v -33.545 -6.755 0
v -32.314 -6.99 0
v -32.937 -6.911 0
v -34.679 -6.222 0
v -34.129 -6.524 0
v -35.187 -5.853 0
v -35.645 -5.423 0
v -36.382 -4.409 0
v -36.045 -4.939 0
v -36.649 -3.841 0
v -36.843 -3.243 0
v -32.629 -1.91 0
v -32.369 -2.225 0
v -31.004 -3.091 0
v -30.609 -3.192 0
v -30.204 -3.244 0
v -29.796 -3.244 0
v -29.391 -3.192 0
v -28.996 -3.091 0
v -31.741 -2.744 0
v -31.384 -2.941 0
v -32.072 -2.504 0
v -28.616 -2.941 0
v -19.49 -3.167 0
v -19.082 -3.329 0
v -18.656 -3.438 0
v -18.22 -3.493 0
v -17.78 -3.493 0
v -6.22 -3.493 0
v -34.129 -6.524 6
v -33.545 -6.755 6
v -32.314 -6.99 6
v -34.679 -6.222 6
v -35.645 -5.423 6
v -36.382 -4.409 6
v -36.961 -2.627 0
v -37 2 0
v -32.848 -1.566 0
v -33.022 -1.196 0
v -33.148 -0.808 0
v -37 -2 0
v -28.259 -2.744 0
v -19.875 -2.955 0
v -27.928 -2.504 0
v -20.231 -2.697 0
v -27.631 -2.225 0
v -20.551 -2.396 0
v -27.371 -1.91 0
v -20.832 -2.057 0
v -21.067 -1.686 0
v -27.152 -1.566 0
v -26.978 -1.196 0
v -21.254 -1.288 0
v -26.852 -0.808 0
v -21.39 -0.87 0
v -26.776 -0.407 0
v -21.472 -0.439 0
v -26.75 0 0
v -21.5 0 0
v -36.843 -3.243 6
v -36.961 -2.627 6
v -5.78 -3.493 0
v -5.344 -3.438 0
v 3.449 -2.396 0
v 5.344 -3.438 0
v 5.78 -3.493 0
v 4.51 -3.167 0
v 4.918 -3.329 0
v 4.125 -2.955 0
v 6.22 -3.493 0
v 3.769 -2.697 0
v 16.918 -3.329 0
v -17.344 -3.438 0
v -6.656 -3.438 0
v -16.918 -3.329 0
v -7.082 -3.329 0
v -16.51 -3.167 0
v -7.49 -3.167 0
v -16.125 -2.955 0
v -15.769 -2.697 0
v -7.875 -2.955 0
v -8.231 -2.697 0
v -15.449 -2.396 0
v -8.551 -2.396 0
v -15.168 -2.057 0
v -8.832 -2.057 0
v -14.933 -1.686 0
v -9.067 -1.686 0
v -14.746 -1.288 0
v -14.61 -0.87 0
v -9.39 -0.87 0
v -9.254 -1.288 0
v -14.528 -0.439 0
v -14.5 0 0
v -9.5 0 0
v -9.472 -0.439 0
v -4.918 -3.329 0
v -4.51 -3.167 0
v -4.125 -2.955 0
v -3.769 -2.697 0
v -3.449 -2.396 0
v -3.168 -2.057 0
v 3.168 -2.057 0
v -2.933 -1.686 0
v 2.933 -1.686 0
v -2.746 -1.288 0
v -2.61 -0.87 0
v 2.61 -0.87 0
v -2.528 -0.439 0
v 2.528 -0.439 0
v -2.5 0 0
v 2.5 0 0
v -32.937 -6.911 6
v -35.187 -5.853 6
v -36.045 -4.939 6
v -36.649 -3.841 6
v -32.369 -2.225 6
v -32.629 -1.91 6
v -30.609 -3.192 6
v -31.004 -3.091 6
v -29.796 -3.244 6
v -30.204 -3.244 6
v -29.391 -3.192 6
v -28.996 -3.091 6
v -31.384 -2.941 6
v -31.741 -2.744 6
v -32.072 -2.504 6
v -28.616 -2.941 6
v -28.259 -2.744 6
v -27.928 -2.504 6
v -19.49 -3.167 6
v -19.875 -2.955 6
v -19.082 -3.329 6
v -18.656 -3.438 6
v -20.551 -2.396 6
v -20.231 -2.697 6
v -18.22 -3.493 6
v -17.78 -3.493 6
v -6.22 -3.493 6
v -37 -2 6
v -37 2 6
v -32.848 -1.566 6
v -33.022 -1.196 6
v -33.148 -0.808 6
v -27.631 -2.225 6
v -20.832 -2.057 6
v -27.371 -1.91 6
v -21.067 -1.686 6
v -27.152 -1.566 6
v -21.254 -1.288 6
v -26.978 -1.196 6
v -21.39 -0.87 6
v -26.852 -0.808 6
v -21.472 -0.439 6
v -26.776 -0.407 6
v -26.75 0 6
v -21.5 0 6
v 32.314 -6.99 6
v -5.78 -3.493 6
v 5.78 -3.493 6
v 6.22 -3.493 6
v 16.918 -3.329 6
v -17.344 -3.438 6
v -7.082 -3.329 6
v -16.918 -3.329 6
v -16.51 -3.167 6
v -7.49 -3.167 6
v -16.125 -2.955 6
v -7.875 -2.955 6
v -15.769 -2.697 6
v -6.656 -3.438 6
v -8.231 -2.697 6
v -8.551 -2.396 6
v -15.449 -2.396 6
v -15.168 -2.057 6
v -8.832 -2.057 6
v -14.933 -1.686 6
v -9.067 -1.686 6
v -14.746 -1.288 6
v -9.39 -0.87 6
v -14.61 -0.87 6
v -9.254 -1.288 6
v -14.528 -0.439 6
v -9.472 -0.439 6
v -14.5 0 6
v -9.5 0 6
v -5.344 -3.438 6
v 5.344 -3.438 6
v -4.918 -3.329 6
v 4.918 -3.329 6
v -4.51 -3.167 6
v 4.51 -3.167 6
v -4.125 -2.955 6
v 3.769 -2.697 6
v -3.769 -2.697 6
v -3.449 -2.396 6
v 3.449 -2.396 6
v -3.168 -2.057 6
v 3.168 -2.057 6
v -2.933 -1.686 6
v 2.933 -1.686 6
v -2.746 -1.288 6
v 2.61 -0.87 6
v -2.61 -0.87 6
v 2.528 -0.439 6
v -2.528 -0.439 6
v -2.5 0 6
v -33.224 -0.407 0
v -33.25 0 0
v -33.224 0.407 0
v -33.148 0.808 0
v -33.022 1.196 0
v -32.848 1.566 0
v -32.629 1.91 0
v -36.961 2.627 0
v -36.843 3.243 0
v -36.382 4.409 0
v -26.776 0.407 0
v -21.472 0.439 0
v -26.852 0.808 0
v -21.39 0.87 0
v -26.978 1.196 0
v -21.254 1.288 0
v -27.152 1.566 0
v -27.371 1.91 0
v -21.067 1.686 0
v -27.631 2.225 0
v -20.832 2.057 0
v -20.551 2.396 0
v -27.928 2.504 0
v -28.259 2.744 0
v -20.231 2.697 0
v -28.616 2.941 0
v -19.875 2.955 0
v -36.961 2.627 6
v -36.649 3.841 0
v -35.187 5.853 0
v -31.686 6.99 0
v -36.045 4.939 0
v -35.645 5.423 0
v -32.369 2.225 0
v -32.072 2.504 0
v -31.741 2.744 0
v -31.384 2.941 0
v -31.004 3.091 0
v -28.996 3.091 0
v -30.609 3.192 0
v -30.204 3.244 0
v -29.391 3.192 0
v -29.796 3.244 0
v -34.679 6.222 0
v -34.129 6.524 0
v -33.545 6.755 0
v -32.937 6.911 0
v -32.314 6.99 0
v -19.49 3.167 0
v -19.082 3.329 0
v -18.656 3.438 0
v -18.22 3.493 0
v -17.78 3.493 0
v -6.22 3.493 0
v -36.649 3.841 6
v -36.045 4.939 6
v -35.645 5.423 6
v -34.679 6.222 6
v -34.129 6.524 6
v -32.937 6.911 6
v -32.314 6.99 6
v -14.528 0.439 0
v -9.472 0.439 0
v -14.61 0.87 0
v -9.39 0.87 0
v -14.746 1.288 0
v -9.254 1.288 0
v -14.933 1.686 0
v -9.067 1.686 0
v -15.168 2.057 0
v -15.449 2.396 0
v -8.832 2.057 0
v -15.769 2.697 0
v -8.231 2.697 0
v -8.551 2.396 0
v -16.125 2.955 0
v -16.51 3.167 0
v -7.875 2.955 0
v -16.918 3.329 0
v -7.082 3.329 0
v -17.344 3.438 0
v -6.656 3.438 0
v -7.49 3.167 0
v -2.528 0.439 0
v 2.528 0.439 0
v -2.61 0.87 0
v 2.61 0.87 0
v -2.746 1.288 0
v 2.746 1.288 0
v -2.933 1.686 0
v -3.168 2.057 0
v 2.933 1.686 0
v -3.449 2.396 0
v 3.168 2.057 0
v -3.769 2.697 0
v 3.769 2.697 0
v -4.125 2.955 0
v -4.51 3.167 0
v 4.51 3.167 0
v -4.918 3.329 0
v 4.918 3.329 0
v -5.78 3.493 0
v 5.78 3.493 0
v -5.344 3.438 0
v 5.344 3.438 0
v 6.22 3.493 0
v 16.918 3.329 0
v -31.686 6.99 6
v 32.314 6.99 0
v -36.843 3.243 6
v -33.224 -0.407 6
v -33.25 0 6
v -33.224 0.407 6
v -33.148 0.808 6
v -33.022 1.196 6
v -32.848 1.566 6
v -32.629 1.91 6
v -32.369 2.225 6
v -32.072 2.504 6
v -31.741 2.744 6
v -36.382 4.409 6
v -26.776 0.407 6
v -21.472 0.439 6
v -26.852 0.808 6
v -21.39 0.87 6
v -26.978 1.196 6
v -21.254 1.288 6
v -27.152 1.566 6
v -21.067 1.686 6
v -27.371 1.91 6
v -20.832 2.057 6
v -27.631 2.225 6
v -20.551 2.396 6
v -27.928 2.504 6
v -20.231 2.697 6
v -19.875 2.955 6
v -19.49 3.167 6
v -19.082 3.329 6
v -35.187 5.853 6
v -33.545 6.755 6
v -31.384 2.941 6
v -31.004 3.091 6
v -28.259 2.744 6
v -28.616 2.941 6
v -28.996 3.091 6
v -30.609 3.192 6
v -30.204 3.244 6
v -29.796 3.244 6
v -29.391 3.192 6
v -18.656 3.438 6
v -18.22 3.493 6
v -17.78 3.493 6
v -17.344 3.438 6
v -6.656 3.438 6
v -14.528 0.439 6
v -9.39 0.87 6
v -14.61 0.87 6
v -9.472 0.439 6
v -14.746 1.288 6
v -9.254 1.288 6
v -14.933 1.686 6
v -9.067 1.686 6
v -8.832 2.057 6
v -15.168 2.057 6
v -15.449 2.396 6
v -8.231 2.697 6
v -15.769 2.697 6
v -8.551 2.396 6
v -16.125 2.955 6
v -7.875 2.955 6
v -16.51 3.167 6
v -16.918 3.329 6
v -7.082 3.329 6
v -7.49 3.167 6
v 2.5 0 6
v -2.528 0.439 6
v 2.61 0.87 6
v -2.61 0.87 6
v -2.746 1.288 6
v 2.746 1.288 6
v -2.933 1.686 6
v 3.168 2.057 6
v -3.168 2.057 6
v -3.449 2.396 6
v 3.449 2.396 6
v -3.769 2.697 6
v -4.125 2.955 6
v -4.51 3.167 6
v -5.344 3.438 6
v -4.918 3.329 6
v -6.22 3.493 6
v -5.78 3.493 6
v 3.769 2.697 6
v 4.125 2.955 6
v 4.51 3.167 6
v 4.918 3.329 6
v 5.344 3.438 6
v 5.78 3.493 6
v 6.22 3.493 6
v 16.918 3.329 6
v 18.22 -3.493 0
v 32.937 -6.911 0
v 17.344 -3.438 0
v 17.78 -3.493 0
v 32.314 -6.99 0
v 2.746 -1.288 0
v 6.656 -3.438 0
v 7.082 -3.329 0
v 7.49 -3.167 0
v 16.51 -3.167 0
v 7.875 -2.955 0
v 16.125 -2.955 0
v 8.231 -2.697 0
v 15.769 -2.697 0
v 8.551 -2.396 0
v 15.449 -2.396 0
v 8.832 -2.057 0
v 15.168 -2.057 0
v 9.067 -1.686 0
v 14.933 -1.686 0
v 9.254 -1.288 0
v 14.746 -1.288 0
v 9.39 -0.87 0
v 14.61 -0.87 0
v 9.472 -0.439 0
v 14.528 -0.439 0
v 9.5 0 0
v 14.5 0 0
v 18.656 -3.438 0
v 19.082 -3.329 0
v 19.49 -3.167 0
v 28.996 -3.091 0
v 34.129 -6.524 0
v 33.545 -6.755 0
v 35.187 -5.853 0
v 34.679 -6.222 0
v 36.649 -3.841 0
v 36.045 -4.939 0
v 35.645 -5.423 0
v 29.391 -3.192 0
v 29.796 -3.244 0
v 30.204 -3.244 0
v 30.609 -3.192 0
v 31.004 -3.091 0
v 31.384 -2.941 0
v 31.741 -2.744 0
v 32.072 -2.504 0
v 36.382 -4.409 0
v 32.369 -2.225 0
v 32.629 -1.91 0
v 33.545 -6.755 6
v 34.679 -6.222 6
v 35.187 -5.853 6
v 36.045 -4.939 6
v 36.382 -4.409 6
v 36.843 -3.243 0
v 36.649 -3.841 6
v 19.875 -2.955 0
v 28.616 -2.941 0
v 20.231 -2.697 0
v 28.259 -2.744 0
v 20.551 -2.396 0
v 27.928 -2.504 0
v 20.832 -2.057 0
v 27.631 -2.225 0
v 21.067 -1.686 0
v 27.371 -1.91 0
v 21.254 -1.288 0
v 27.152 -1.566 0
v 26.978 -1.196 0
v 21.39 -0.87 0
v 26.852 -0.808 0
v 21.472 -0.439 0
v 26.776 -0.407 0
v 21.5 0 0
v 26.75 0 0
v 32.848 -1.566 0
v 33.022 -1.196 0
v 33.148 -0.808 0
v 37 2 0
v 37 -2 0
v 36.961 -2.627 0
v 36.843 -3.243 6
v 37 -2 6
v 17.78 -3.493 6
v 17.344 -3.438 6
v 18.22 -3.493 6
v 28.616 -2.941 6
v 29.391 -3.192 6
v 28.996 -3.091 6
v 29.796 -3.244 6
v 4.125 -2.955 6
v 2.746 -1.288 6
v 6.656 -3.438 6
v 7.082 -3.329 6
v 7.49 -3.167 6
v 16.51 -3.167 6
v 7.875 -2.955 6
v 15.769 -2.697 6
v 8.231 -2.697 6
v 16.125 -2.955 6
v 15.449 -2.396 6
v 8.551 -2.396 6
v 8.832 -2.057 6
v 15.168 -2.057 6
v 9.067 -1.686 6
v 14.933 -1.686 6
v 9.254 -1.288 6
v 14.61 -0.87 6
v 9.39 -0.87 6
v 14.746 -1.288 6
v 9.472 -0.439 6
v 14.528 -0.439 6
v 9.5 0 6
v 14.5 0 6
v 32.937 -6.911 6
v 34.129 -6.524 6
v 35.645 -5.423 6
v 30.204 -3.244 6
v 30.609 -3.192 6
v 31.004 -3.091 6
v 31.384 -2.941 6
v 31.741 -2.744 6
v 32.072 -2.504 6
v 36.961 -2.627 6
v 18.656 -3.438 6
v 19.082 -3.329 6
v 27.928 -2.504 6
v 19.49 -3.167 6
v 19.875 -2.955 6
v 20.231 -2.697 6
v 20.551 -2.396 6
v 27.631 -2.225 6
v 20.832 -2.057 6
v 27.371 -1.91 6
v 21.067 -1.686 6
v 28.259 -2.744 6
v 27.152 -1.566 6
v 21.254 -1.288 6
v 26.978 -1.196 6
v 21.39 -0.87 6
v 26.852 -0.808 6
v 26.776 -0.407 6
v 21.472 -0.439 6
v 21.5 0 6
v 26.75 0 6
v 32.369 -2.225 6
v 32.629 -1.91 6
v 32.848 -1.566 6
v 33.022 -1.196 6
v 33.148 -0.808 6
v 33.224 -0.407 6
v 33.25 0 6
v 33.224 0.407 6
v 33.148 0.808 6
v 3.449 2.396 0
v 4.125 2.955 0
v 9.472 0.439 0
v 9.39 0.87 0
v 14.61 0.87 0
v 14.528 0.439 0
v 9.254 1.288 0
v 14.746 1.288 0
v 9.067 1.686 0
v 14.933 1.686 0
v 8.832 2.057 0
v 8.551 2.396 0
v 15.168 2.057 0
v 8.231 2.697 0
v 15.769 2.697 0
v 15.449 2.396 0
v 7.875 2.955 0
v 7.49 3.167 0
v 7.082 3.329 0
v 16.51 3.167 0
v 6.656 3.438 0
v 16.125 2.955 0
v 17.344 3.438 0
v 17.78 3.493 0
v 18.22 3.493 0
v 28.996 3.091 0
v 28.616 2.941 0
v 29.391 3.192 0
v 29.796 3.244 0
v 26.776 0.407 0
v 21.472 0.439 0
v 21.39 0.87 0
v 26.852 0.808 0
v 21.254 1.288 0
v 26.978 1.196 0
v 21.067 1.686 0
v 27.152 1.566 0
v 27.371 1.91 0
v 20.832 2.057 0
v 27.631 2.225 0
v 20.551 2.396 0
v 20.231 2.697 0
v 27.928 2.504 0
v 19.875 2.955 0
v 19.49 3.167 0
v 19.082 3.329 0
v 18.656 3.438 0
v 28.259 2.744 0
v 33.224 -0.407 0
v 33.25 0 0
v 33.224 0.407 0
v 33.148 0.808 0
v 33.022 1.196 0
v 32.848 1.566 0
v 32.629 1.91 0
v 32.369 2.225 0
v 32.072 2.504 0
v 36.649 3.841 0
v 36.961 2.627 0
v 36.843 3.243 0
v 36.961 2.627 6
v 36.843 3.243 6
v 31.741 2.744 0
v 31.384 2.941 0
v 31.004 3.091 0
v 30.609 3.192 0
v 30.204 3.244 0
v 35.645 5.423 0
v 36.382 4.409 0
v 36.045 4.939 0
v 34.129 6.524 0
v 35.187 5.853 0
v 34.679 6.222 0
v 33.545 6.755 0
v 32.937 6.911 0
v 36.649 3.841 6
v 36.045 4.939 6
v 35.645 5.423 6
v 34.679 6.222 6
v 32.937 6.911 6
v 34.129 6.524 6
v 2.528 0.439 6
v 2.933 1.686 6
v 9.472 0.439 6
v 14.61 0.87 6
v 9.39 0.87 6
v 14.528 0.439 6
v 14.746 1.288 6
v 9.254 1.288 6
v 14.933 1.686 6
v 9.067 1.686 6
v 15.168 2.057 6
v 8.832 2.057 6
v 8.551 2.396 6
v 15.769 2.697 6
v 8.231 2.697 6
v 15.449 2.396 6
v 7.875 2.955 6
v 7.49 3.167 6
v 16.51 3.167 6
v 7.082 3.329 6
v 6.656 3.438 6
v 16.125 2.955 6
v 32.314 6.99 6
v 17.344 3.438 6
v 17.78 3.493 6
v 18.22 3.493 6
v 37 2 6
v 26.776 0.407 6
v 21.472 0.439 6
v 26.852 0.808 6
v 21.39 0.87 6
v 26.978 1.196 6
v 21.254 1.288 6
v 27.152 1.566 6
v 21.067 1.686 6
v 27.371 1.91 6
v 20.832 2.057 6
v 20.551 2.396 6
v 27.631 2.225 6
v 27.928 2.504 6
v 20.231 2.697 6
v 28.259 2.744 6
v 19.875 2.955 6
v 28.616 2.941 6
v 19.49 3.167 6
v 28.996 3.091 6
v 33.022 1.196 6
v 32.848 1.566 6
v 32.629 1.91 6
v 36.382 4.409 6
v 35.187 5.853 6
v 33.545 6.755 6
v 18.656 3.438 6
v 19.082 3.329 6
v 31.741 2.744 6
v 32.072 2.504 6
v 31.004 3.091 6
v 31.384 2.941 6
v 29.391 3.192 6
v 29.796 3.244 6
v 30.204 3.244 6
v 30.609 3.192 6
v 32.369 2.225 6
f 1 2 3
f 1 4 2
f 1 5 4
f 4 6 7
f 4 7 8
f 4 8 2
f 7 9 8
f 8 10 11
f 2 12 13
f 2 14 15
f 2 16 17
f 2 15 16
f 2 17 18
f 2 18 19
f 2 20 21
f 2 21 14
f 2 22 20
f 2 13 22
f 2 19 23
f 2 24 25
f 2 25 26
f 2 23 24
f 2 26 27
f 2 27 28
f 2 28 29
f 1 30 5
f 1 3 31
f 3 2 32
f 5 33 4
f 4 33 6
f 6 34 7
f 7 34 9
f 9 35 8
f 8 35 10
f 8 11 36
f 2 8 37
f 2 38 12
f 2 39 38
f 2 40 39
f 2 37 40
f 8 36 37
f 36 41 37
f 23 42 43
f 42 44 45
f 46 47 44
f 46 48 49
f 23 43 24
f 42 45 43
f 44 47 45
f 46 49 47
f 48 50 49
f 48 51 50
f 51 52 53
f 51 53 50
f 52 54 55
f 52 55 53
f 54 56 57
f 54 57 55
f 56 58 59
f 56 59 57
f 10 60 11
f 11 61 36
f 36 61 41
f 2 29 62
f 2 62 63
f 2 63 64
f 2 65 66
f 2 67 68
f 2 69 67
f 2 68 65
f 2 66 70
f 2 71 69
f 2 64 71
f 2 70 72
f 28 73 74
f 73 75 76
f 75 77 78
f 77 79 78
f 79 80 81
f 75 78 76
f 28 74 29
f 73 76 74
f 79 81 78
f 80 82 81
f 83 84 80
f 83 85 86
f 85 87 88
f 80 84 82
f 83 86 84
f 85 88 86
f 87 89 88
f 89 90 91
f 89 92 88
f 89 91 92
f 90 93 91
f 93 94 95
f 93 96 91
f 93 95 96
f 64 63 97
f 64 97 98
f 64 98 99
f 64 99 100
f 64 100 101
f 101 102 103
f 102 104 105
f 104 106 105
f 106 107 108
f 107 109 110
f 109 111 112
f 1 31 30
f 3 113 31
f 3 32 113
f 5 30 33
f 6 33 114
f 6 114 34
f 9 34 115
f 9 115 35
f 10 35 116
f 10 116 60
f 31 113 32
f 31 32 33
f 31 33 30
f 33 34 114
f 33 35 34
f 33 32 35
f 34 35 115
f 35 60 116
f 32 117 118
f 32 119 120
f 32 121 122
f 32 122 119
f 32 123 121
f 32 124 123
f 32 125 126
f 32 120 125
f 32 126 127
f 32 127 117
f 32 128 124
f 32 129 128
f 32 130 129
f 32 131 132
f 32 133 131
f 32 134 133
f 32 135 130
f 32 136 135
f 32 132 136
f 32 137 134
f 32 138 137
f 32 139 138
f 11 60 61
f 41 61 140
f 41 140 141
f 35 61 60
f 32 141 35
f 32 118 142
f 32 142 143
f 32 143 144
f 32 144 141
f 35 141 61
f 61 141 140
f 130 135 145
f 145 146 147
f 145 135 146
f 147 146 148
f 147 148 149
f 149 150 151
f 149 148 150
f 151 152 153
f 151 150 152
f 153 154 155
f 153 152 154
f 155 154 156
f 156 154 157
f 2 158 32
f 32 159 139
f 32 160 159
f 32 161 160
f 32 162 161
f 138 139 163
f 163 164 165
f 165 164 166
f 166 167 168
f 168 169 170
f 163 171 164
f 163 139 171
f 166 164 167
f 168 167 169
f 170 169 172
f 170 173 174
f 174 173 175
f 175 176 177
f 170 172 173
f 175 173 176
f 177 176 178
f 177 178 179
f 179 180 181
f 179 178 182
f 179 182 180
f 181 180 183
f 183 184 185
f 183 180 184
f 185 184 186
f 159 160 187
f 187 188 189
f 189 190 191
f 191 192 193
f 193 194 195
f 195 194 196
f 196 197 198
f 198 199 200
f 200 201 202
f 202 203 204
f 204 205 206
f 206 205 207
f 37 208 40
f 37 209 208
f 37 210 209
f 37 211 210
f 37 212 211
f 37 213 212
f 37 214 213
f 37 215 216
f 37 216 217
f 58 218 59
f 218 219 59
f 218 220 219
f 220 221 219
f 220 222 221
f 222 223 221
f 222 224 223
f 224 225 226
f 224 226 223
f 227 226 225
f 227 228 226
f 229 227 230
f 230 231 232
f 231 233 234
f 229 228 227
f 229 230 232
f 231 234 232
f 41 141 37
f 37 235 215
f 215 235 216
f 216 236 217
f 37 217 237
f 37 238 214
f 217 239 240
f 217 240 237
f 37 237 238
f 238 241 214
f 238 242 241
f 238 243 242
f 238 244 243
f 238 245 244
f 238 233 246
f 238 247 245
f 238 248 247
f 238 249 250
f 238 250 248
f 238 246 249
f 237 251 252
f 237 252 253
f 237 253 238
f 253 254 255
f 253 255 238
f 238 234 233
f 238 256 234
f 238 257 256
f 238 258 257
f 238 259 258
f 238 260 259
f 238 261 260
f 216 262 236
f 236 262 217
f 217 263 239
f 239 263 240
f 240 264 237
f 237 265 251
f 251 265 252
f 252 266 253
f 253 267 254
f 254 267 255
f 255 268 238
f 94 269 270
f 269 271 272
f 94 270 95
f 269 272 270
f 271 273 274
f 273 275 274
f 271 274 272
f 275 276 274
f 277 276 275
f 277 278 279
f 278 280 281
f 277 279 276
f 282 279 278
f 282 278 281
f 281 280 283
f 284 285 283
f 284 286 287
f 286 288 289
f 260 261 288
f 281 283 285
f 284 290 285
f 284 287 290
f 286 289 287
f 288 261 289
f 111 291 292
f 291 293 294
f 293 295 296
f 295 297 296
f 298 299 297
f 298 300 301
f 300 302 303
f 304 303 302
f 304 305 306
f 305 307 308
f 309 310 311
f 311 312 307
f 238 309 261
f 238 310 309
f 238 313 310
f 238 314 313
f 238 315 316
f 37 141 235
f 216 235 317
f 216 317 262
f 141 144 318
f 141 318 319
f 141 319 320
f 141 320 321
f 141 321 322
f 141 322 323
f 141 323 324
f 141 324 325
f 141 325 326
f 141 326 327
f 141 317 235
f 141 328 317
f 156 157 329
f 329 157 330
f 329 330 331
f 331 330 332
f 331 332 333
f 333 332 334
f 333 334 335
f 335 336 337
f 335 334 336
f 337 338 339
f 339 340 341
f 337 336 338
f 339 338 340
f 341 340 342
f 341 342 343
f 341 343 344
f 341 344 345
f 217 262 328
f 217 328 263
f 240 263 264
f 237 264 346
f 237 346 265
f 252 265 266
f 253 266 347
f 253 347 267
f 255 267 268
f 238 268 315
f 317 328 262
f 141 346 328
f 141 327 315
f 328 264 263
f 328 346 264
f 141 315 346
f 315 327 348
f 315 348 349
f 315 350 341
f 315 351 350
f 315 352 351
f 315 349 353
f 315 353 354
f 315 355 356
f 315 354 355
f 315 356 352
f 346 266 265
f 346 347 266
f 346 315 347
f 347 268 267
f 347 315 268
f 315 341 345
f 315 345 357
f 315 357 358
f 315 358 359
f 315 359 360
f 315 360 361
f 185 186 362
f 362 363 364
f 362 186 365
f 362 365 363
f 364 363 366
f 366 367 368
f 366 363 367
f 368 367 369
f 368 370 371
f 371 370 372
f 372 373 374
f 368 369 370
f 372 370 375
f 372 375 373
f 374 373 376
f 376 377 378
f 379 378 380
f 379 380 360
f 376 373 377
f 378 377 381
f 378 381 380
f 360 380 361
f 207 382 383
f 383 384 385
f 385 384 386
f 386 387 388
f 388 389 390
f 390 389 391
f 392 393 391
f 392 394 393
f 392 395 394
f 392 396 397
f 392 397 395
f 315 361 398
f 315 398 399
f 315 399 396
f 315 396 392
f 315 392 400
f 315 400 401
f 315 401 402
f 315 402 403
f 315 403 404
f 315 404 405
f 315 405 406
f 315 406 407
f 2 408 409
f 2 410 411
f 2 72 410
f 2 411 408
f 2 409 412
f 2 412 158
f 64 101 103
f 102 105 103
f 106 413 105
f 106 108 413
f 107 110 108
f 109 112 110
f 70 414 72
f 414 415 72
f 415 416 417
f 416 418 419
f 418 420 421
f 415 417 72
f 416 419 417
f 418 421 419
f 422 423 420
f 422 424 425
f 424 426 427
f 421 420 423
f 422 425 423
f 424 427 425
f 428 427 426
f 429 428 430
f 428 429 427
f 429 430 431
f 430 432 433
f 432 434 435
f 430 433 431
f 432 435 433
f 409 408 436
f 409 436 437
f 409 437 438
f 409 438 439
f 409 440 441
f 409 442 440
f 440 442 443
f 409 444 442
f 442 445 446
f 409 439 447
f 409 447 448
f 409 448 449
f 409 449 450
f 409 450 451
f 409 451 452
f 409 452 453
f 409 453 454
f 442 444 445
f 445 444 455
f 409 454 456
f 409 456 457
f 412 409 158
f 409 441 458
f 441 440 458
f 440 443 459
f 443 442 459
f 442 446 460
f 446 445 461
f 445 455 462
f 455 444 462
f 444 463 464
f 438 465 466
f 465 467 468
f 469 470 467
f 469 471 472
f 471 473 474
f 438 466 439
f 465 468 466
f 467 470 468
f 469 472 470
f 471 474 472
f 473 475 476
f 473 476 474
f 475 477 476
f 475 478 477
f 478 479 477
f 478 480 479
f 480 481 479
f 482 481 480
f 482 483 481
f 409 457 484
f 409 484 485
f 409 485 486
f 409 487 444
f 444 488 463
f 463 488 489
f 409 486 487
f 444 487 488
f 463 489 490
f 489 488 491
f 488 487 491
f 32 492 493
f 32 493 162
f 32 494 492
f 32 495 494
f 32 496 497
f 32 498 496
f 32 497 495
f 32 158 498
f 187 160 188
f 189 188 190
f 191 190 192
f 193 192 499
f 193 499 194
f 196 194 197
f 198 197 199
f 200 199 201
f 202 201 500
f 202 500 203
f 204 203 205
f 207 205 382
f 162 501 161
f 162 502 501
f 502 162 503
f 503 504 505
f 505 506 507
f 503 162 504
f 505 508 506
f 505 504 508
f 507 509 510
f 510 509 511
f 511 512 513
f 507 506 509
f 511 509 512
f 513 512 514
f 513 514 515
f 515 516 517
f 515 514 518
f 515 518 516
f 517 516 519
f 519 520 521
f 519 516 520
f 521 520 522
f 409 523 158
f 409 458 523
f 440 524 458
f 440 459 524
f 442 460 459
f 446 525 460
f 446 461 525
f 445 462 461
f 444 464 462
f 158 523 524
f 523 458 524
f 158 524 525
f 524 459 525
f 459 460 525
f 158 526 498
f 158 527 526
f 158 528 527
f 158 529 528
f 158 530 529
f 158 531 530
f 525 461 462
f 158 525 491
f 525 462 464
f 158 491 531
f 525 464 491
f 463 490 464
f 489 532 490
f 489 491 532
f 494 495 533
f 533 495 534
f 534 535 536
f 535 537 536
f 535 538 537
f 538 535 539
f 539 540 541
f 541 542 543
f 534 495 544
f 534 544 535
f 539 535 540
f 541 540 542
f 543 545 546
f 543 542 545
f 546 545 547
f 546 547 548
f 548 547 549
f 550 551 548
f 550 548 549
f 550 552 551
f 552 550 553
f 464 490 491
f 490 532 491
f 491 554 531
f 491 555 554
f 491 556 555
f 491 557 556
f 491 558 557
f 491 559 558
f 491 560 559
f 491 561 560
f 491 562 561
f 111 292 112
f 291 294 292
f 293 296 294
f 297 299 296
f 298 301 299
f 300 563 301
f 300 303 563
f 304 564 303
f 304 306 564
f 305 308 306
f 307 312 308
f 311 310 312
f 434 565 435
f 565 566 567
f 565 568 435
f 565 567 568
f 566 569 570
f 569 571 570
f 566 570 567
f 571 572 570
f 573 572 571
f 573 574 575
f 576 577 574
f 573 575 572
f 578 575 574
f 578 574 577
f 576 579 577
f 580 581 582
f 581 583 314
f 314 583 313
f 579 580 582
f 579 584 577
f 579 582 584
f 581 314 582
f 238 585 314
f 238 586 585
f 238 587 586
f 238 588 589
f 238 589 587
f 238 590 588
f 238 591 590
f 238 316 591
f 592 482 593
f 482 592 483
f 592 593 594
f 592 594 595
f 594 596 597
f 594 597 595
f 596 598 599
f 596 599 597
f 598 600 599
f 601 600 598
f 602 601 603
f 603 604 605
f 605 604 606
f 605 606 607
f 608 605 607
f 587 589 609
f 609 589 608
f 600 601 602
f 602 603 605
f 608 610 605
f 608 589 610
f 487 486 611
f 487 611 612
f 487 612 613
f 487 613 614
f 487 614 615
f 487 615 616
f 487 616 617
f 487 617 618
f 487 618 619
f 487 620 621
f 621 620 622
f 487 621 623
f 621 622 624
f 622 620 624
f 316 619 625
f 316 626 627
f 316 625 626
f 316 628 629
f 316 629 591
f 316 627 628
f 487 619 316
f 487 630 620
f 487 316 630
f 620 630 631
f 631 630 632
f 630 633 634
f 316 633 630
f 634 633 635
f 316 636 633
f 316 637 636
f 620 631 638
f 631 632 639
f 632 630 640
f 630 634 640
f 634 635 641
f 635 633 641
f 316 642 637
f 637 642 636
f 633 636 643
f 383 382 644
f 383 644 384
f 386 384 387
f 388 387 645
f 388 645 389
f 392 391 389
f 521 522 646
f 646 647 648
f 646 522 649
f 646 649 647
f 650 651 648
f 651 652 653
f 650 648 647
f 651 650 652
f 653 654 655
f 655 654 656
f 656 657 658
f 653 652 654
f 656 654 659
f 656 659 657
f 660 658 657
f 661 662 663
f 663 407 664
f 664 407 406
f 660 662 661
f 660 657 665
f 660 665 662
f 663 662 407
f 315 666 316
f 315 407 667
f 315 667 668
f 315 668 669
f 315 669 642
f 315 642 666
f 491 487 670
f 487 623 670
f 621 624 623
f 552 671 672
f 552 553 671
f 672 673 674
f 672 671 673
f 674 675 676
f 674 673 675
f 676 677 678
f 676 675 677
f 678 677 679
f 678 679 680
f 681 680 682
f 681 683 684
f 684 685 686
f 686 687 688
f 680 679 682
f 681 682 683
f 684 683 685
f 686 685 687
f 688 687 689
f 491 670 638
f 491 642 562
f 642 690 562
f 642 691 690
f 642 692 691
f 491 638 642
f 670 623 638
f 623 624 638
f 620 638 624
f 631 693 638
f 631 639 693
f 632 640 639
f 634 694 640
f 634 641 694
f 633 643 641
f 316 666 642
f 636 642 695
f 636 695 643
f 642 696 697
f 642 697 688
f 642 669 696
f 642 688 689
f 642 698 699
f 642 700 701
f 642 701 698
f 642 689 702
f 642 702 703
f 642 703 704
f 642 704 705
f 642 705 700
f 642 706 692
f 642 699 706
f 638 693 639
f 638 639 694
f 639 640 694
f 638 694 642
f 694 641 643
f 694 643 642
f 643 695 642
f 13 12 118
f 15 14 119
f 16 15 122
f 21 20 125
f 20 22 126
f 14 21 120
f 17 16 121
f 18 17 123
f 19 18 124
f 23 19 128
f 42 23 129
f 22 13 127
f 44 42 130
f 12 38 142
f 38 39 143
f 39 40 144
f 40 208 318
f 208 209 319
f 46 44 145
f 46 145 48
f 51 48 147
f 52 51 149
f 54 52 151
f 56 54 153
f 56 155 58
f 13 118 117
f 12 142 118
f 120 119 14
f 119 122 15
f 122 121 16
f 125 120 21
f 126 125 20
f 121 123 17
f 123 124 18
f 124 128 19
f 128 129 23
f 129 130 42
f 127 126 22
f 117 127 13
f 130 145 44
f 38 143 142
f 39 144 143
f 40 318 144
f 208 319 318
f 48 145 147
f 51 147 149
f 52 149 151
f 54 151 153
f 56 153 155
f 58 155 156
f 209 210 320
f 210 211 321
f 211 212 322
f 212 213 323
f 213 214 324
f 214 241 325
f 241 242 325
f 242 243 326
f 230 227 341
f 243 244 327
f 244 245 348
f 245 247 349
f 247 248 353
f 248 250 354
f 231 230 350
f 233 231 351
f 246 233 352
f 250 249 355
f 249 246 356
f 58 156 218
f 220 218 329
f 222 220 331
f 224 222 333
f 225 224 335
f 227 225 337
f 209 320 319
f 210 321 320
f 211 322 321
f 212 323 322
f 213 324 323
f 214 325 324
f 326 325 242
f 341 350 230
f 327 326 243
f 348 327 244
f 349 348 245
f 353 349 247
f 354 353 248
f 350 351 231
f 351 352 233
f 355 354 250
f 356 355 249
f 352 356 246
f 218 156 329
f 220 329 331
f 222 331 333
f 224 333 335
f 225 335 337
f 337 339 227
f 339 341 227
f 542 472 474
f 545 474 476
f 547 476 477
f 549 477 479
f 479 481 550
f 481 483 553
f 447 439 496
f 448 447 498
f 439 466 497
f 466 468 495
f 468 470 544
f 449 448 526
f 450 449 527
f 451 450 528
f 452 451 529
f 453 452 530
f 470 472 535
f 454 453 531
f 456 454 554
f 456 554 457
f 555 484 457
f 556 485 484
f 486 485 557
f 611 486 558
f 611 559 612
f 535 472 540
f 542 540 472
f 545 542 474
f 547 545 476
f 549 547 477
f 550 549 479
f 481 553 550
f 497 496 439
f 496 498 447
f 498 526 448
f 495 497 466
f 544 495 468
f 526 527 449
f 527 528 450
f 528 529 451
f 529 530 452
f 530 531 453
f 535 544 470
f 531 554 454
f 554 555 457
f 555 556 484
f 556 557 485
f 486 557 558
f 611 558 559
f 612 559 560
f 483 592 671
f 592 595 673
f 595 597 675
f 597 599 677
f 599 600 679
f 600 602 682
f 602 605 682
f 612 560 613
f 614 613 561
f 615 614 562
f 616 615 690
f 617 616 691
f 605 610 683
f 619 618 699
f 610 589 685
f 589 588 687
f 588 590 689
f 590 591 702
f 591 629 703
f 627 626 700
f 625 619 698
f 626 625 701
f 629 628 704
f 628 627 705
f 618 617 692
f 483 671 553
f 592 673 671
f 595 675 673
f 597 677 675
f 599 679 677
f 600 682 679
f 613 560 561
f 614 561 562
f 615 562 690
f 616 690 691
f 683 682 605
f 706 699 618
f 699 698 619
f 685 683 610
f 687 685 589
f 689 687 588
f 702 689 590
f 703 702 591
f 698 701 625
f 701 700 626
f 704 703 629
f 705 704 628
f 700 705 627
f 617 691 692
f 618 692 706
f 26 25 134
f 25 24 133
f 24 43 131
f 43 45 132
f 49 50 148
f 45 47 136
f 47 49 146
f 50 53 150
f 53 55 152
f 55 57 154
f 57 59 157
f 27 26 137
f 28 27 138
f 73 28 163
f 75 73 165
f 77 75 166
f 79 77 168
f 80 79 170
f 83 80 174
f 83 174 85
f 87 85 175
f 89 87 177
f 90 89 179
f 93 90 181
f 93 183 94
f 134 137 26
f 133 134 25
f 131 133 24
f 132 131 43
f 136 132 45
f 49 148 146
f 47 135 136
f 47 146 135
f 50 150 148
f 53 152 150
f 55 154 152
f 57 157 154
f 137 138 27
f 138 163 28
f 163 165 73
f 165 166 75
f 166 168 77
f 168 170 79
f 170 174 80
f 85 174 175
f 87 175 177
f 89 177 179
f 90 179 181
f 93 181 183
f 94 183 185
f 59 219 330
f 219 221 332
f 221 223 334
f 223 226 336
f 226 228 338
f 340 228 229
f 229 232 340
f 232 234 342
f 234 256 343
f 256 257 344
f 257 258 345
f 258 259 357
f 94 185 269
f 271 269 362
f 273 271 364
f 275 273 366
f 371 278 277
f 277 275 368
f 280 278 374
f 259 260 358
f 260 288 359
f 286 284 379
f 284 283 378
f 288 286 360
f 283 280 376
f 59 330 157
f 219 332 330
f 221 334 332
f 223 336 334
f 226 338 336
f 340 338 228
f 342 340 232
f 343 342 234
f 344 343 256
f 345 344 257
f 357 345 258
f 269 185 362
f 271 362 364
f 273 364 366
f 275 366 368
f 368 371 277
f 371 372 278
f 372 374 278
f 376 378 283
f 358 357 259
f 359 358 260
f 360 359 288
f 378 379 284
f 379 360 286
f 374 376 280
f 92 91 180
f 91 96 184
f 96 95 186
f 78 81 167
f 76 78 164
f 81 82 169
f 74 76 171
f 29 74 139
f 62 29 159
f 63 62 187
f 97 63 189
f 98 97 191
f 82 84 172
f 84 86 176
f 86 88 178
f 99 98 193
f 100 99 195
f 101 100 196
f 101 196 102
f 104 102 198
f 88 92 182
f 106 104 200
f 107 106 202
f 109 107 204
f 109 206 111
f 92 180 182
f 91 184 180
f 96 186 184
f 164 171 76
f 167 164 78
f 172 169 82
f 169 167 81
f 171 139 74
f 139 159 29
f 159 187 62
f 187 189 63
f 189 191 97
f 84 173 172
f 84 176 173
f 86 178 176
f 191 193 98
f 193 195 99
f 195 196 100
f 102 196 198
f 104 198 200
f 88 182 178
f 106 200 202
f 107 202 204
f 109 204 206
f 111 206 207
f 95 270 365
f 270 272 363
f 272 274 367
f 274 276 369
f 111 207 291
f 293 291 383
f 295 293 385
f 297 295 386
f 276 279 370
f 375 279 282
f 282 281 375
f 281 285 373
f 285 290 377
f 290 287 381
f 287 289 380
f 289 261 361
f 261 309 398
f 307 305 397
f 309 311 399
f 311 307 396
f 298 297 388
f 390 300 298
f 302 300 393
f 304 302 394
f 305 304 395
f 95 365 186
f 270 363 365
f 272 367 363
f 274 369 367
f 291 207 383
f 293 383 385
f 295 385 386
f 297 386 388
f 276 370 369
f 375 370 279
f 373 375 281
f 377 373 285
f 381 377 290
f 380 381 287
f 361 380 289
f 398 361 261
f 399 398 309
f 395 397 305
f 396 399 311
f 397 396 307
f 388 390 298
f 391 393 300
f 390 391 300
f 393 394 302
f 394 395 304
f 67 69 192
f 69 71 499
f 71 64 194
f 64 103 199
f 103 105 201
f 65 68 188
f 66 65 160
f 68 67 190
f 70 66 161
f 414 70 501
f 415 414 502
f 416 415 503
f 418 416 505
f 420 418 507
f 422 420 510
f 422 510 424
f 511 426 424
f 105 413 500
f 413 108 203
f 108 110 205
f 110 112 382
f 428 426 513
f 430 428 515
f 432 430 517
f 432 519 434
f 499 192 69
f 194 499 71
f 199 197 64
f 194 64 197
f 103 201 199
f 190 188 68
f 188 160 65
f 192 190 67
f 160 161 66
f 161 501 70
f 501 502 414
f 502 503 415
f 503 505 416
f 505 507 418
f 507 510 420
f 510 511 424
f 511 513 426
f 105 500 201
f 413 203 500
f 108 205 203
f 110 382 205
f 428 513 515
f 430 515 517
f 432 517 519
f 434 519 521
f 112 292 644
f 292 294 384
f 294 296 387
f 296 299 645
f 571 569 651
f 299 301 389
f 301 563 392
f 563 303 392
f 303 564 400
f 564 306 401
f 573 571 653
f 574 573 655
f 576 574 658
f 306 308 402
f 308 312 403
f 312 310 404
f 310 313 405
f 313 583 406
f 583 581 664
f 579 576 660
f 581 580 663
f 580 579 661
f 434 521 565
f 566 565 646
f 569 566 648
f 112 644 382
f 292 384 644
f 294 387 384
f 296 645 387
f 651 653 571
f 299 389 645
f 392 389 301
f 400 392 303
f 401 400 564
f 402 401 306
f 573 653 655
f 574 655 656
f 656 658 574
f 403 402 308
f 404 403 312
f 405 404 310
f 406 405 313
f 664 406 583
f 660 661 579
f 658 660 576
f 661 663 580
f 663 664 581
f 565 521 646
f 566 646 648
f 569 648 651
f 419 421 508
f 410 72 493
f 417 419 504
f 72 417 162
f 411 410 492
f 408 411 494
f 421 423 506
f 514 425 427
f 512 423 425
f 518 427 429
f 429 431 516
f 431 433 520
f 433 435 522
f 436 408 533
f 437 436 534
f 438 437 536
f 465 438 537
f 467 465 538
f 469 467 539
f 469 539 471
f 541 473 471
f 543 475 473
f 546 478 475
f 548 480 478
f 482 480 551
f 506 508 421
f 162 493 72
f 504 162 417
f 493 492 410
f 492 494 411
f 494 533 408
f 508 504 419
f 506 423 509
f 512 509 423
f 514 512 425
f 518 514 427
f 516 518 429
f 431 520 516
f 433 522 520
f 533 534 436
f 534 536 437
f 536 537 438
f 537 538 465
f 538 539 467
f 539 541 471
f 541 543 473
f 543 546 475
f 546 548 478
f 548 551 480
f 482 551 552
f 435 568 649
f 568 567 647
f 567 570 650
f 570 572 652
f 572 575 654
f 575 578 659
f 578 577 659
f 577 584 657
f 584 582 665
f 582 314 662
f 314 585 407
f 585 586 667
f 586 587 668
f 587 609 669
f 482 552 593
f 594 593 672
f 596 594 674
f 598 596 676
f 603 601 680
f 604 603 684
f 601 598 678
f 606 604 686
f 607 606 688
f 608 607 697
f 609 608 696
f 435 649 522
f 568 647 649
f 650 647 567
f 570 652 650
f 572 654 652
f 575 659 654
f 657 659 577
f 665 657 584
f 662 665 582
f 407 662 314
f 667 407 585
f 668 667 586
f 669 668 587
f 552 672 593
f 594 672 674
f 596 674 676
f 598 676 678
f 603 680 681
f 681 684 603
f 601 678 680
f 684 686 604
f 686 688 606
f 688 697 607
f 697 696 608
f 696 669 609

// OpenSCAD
$fn = 50;

difference() {
	union() {
		hull() {
			translate(v = [-32.0, 2.0, 0]) {
				cylinder(h = 6, r = 5);
			}
			translate(v = [32.0, 2.0, 0]) {
				cylinder(h = 6, r = 5);
			}
			translate(v = [-32.0, -2.0, 0]) {
				cylinder(h = 6, r = 5);
			}
			translate(v = [32.0, -2.0, 0]) {
				cylinder(h = 6, r = 5);
			}
		}
	}
	union() {
		translate(v = [-30.0, 0.0, 0]) {
			cylinder(h = 6, r = 3.25);
		}
		translate(v = [30.0, 0.0, 0]) {
			cylinder(h = 6, r = 3.25);
		}
		translate(v = [-18.0, 0, 0.0]) {
			cylinder(h = 6, r = 3.5);
		}
		translate(v = [-6.0, 0, 0.0]) {
			cylinder(h = 6, r = 3.5);
		}
		translate(v = [6.0, 0, 0.0]) {
			cylinder(h = 6, r = 3.5);
		}
		translate(v = [18.0, 0, 0.0]) {
			cylinder(h = 6, r = 3.5);
		}
	}
}
